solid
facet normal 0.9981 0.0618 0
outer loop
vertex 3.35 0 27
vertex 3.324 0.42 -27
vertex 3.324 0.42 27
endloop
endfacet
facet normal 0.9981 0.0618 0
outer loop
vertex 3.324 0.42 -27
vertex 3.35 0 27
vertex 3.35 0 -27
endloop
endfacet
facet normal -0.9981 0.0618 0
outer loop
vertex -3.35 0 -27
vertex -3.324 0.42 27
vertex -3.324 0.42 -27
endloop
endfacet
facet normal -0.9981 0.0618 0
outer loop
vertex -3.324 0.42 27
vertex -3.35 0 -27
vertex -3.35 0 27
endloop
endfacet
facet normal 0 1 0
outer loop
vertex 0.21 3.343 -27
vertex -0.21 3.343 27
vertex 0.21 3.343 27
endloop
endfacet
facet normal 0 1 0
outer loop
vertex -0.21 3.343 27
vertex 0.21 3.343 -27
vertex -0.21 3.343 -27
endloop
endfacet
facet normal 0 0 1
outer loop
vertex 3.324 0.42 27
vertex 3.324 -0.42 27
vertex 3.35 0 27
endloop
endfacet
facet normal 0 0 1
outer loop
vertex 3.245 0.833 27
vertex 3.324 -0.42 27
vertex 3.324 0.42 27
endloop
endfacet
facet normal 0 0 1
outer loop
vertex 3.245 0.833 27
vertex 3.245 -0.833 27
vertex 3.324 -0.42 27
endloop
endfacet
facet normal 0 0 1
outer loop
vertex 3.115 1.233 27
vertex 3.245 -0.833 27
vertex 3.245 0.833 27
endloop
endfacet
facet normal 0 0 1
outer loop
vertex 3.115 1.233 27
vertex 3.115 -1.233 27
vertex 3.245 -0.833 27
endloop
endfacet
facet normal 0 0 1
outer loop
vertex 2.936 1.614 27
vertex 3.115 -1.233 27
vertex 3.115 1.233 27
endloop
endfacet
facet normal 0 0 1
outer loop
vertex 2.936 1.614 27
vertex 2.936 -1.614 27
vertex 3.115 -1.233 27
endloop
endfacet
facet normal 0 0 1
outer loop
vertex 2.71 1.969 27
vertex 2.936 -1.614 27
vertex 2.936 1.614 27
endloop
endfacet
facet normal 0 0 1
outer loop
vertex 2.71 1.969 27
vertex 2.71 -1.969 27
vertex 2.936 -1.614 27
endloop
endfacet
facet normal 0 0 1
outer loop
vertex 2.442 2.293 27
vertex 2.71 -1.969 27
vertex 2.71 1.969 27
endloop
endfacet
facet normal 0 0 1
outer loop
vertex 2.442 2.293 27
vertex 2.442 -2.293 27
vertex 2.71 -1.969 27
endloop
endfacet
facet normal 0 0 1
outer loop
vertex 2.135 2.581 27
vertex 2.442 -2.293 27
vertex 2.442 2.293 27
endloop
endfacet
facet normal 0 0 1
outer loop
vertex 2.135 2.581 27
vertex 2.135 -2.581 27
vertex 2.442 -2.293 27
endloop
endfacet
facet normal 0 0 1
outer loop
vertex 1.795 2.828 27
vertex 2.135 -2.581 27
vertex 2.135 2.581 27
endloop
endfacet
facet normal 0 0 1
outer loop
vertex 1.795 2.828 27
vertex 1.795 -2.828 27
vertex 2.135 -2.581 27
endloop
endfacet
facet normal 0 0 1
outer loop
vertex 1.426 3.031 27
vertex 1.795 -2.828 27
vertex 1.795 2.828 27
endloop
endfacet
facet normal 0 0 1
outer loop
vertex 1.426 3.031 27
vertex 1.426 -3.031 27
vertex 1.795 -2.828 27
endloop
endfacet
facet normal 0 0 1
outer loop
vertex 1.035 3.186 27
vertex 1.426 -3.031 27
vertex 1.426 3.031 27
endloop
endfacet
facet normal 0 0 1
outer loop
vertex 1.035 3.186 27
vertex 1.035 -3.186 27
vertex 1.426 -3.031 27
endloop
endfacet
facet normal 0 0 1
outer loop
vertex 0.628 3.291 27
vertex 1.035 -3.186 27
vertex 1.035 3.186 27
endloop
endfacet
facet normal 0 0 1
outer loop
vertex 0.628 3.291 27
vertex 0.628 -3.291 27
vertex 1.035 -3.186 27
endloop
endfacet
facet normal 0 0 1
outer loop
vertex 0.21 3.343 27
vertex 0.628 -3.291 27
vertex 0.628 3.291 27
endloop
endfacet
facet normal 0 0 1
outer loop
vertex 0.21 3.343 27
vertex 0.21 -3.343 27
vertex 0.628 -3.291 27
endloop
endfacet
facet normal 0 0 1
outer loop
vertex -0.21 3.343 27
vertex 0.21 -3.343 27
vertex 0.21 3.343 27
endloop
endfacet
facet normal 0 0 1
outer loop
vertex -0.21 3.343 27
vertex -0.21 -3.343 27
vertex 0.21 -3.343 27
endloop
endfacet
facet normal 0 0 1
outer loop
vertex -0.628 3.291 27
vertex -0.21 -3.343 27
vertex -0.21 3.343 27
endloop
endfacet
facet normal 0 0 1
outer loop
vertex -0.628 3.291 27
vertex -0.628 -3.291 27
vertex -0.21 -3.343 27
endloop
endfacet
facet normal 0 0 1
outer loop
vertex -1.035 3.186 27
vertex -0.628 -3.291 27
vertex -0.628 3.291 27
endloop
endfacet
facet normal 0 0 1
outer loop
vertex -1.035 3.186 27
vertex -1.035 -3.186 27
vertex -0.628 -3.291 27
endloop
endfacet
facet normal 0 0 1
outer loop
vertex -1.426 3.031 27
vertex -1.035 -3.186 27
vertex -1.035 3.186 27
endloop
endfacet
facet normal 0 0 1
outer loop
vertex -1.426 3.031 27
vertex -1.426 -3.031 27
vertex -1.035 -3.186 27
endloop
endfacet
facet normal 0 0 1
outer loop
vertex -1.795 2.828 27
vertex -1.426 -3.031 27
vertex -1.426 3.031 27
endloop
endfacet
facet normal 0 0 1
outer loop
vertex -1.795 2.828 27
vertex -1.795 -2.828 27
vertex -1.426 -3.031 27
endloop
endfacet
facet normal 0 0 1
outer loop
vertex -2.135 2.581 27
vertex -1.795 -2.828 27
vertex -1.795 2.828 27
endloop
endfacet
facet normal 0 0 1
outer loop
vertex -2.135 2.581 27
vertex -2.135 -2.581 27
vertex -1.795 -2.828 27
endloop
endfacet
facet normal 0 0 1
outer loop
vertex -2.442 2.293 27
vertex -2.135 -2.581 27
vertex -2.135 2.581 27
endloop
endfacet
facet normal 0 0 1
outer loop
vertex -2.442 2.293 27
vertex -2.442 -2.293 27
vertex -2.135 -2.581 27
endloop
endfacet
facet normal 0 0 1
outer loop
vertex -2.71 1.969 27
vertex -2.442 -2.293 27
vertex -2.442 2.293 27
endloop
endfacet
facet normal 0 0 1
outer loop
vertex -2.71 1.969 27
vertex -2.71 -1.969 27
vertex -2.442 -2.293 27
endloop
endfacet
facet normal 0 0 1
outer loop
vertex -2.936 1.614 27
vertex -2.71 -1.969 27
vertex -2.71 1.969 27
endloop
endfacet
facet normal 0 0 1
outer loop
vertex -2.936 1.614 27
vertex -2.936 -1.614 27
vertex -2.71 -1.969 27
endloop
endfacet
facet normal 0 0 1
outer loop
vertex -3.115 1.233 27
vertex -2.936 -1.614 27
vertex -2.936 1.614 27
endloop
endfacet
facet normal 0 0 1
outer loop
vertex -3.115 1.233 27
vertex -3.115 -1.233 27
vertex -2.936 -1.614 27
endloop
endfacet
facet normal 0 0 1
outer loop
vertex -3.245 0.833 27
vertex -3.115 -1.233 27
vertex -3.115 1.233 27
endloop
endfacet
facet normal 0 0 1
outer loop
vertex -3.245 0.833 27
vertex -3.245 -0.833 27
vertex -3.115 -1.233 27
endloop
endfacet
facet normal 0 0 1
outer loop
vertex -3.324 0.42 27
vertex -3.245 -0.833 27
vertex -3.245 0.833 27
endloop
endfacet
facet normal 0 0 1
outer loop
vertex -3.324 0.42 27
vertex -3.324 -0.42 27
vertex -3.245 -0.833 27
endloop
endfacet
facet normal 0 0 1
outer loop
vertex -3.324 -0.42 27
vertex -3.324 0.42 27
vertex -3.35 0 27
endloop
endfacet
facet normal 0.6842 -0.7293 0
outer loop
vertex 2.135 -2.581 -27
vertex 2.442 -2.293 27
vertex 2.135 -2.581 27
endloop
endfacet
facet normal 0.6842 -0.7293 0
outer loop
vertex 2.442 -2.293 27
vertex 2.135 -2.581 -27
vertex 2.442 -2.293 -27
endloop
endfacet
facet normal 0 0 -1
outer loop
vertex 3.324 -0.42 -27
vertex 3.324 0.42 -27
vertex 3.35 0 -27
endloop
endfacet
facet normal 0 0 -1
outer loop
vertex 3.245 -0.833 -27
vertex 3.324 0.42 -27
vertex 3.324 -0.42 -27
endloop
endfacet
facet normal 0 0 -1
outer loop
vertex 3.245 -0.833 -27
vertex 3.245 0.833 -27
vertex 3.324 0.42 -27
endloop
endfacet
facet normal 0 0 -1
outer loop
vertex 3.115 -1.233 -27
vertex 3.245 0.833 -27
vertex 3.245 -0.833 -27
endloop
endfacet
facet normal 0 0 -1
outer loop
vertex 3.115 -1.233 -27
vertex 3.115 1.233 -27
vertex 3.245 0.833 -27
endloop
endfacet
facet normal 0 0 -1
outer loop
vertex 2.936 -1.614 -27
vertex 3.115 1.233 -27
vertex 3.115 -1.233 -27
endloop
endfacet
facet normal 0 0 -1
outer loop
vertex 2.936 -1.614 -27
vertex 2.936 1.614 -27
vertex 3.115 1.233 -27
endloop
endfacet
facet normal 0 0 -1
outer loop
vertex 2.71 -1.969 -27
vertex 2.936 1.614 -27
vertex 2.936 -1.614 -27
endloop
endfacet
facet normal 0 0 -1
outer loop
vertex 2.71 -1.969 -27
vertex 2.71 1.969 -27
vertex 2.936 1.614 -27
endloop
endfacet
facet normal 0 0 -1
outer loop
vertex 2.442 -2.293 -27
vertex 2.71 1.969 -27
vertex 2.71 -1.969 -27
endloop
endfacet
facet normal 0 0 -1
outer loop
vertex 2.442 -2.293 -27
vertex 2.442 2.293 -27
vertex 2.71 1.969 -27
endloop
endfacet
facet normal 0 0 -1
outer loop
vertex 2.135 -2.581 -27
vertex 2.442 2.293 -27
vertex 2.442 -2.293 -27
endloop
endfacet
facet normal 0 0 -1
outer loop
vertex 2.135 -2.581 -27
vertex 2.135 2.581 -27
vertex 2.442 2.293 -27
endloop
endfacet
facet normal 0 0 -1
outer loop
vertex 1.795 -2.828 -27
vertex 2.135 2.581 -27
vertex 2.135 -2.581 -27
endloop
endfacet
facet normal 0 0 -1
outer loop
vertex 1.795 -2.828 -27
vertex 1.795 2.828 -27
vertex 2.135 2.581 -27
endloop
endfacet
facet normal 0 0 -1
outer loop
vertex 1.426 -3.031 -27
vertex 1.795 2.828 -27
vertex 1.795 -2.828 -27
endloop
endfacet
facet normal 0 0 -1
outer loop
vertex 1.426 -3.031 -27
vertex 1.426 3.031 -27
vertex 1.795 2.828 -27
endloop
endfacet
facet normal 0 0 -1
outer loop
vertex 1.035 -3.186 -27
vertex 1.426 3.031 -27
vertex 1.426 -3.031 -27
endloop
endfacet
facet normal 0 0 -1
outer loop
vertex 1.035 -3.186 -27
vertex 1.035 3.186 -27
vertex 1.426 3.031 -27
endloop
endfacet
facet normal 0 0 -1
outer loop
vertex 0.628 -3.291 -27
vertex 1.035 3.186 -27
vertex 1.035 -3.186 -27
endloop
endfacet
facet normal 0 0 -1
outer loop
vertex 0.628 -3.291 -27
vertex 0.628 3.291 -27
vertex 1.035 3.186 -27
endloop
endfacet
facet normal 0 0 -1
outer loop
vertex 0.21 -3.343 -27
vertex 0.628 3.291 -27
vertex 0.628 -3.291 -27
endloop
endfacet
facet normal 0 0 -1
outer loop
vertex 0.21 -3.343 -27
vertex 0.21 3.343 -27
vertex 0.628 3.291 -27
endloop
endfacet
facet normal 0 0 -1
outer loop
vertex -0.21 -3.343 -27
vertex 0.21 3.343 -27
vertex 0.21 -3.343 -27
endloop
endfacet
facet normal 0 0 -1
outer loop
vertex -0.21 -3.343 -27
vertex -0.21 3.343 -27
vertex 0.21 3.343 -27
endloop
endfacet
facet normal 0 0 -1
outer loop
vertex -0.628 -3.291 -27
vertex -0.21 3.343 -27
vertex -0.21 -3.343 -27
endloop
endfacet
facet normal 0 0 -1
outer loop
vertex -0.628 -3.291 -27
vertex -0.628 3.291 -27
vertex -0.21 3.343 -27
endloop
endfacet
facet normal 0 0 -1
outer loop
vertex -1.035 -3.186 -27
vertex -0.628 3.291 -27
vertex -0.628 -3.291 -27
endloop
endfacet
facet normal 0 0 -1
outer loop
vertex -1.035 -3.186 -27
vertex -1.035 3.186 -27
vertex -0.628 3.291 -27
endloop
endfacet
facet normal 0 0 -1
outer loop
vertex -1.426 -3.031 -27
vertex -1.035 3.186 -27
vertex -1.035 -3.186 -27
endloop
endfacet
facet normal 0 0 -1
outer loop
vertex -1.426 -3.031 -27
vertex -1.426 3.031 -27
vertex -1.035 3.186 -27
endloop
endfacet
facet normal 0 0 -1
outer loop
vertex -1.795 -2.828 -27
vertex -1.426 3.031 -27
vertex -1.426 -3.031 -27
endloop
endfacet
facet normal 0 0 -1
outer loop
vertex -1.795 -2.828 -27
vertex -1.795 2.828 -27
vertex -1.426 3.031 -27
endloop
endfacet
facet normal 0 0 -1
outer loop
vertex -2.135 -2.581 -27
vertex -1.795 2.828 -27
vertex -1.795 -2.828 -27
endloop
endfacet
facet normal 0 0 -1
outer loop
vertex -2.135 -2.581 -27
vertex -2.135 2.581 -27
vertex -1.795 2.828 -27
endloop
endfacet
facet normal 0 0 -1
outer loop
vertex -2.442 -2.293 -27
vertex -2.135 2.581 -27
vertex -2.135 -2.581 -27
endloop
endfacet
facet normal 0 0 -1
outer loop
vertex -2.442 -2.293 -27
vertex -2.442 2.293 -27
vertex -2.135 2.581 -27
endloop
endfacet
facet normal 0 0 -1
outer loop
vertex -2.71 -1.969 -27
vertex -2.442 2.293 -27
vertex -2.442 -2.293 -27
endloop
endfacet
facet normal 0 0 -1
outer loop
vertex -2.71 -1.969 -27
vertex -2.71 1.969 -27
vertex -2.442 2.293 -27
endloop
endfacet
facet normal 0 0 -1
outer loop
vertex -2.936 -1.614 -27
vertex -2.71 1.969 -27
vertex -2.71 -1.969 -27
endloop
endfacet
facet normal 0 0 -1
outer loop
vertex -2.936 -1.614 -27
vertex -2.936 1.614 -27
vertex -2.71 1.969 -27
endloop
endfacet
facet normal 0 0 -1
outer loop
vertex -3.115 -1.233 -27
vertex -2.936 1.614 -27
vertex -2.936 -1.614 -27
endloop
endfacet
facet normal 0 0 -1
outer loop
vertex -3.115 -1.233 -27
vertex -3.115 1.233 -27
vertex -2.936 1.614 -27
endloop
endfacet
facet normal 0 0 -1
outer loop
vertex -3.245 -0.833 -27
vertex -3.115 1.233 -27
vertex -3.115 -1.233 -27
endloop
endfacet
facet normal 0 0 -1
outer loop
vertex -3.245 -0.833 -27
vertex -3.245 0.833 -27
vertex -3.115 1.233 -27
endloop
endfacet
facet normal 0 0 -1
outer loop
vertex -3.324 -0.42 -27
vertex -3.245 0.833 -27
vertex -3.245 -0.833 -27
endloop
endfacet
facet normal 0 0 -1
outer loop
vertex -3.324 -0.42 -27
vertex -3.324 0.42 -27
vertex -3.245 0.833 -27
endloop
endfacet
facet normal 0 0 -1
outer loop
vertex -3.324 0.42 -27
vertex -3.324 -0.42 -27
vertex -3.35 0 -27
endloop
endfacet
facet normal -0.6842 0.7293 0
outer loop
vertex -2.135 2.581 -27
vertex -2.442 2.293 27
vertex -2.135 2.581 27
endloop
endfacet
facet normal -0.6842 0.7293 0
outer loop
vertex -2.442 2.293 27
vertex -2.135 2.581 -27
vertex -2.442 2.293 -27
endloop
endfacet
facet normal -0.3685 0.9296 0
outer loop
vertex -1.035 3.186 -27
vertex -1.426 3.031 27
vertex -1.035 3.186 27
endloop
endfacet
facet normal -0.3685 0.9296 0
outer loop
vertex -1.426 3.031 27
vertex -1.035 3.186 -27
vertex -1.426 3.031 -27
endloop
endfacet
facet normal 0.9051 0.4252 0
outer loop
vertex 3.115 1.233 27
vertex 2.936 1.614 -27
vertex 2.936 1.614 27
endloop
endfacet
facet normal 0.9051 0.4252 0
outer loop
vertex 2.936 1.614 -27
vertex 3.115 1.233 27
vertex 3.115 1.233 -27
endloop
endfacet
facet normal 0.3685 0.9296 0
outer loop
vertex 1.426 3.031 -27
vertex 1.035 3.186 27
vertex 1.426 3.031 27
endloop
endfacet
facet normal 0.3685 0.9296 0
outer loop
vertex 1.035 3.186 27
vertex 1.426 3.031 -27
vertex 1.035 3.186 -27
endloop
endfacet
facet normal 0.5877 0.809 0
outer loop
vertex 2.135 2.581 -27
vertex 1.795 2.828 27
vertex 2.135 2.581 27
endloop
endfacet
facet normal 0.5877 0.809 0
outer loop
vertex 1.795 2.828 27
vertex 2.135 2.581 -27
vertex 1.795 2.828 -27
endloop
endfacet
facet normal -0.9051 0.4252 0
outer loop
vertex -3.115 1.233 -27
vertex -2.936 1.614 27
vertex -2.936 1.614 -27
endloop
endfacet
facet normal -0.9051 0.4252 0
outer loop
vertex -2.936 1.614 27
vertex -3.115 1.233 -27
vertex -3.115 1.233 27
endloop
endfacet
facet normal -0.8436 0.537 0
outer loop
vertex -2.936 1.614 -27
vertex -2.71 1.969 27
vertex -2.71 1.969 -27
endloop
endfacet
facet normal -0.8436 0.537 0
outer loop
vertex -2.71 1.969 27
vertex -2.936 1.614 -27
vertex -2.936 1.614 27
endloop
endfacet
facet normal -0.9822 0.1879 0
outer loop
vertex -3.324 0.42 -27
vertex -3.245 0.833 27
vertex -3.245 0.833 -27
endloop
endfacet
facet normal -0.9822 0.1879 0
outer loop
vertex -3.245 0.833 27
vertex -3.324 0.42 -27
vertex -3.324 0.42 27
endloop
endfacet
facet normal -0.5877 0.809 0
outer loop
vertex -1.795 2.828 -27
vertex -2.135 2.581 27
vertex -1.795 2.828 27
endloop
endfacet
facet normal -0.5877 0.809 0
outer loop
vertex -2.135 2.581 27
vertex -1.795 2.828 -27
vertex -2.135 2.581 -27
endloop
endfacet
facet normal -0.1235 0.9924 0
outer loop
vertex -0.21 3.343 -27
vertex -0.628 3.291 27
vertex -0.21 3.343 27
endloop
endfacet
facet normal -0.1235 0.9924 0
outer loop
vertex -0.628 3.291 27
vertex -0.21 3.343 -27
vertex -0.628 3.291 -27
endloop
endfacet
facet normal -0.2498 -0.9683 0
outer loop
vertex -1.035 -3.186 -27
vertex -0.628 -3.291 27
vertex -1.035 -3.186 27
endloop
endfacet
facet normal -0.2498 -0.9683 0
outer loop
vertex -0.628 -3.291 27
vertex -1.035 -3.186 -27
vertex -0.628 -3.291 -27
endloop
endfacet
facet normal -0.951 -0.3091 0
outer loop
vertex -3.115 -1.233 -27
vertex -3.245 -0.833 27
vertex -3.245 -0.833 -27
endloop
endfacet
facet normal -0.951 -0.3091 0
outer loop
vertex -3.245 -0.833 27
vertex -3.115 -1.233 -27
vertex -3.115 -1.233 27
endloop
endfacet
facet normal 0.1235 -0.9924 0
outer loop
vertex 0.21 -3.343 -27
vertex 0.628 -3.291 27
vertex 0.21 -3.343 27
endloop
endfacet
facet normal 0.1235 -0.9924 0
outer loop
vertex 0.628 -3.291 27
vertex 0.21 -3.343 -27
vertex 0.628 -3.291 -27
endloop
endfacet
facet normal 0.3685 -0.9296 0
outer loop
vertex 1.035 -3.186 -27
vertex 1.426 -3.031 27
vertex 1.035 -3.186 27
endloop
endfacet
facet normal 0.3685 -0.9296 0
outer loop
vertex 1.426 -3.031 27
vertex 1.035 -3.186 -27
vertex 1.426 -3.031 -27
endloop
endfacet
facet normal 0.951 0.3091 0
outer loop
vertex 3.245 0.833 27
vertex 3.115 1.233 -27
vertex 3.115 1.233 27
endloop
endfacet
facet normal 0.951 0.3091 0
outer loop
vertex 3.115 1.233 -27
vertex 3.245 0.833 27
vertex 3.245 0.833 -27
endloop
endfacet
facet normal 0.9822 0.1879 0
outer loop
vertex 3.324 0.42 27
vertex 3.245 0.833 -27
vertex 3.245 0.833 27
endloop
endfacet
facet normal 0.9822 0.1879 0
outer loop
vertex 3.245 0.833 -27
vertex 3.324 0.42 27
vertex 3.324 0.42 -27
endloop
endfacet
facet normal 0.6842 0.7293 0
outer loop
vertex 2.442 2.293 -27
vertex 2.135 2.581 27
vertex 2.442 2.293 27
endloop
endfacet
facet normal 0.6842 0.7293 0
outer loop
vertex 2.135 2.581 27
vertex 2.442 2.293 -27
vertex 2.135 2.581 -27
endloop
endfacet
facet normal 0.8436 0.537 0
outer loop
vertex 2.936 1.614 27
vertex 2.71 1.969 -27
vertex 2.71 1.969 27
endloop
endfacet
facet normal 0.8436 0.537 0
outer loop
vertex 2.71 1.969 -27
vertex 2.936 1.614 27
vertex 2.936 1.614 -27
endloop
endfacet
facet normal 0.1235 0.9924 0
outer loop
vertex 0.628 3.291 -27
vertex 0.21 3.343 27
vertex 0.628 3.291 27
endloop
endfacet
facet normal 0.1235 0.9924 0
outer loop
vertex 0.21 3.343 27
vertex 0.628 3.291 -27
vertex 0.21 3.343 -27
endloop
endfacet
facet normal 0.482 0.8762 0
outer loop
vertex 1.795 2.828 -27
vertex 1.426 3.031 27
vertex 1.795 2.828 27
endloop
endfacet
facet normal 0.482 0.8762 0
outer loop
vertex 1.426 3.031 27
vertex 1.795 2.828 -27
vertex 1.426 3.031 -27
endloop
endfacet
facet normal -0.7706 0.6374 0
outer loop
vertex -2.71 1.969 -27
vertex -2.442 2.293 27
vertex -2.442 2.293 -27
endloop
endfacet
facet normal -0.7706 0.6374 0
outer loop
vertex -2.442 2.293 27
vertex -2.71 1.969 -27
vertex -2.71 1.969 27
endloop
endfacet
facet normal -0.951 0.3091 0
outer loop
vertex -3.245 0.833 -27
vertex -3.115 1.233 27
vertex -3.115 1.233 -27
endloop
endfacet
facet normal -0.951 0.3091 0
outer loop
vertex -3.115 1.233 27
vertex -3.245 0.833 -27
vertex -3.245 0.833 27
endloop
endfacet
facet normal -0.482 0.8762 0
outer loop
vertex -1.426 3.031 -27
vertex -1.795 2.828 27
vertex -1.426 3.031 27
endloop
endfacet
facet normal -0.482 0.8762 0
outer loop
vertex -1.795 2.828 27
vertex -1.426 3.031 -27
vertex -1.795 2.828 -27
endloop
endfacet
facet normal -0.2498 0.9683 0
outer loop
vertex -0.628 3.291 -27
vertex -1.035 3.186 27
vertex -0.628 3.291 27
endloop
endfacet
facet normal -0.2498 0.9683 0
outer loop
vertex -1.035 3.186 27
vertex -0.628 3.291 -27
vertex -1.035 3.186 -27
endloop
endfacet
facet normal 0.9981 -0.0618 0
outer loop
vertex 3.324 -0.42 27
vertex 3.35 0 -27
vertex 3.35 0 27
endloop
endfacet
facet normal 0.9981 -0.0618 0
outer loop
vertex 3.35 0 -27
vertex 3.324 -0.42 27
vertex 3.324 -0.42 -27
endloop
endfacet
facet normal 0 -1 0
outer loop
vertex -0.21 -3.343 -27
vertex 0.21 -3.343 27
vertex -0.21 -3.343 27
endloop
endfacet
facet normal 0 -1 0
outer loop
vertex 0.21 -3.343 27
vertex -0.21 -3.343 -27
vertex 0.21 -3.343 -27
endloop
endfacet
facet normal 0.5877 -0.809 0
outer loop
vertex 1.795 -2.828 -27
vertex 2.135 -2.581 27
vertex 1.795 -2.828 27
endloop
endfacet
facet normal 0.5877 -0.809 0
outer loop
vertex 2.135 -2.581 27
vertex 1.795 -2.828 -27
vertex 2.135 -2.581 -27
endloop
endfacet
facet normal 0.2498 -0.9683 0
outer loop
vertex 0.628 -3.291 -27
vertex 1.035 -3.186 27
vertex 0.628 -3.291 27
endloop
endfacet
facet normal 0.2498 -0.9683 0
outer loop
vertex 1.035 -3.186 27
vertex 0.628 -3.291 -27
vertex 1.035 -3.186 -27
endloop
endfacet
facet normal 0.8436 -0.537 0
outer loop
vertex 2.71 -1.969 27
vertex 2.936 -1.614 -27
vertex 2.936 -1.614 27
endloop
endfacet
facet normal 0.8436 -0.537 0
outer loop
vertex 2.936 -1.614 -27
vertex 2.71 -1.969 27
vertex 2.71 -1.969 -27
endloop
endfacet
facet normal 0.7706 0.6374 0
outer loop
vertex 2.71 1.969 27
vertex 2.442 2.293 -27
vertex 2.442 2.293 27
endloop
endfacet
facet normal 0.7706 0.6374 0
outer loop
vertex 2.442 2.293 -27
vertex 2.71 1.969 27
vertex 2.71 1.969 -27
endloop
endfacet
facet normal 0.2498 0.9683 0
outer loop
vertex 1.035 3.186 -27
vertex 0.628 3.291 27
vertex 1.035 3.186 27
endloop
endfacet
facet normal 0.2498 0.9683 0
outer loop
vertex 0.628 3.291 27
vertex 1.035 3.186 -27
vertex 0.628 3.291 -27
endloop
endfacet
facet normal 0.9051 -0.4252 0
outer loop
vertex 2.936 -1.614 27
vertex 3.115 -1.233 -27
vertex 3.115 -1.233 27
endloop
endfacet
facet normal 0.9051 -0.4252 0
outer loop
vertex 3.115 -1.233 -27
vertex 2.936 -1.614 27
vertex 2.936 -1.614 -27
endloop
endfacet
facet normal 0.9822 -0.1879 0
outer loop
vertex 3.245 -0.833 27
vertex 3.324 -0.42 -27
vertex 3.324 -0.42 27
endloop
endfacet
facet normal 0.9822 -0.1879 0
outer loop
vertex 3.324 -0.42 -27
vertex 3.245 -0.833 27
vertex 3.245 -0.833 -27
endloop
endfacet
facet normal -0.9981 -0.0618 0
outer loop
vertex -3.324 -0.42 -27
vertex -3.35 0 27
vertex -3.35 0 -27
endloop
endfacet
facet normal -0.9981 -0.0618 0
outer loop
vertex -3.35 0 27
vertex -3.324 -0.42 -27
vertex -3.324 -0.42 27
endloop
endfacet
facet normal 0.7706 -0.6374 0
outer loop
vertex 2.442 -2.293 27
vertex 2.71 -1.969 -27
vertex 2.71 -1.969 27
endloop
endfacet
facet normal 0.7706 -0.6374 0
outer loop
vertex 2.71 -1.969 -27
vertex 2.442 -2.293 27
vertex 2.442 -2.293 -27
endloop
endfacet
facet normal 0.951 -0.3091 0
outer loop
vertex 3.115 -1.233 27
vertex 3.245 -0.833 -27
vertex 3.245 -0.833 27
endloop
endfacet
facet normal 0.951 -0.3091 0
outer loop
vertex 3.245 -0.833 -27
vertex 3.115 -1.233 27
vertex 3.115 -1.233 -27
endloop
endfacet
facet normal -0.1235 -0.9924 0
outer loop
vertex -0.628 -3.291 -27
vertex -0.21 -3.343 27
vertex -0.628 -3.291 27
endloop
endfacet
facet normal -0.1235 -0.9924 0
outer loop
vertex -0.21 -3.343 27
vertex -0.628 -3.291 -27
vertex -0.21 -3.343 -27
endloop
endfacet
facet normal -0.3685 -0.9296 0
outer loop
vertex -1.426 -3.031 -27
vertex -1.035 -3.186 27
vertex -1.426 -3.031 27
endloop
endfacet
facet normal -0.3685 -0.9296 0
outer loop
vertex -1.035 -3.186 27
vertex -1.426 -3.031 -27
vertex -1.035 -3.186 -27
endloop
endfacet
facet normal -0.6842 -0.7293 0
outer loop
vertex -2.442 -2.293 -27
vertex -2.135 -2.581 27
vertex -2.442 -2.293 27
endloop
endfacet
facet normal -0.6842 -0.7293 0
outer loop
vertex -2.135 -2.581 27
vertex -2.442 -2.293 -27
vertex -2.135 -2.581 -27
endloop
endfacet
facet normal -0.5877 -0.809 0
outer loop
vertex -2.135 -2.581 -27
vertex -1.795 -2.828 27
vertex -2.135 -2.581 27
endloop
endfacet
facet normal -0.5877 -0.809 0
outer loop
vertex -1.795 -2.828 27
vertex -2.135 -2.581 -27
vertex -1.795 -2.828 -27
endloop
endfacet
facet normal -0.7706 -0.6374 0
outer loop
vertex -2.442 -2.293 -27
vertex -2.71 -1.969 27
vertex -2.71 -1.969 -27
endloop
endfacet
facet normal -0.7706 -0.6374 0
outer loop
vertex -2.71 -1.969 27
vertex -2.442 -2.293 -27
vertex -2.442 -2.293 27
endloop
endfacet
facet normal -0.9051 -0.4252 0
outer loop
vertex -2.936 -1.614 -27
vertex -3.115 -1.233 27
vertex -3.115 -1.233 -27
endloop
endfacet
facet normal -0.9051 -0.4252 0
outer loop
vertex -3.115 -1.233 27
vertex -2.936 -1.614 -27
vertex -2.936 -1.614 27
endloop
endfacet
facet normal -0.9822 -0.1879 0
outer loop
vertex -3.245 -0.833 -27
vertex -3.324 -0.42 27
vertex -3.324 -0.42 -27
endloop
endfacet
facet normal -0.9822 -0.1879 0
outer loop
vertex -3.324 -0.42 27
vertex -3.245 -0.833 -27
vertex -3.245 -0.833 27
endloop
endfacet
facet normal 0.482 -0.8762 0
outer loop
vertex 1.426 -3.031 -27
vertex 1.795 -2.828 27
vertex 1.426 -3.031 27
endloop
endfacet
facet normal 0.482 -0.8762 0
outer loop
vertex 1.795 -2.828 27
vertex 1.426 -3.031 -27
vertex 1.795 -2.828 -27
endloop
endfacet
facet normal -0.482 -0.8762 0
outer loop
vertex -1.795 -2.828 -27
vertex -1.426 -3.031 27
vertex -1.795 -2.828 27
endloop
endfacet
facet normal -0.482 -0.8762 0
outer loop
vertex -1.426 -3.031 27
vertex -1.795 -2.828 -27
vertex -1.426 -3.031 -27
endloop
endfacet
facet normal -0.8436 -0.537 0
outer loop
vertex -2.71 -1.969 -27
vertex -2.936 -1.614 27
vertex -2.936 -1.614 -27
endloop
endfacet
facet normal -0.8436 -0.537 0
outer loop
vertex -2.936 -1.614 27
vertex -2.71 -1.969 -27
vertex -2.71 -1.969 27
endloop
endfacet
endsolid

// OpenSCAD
$fn = 50;


difference() {
	union() {
		translate(v = [0, 0, -27.0000000000]) {
			cylinder(h = 54, r = 3.3500000000);
		}
	}
	union() {
		translate(v = [0, 0, -100.0000000000]) {
			cylinder(h = 200, r = 0);
		}
	}
}
